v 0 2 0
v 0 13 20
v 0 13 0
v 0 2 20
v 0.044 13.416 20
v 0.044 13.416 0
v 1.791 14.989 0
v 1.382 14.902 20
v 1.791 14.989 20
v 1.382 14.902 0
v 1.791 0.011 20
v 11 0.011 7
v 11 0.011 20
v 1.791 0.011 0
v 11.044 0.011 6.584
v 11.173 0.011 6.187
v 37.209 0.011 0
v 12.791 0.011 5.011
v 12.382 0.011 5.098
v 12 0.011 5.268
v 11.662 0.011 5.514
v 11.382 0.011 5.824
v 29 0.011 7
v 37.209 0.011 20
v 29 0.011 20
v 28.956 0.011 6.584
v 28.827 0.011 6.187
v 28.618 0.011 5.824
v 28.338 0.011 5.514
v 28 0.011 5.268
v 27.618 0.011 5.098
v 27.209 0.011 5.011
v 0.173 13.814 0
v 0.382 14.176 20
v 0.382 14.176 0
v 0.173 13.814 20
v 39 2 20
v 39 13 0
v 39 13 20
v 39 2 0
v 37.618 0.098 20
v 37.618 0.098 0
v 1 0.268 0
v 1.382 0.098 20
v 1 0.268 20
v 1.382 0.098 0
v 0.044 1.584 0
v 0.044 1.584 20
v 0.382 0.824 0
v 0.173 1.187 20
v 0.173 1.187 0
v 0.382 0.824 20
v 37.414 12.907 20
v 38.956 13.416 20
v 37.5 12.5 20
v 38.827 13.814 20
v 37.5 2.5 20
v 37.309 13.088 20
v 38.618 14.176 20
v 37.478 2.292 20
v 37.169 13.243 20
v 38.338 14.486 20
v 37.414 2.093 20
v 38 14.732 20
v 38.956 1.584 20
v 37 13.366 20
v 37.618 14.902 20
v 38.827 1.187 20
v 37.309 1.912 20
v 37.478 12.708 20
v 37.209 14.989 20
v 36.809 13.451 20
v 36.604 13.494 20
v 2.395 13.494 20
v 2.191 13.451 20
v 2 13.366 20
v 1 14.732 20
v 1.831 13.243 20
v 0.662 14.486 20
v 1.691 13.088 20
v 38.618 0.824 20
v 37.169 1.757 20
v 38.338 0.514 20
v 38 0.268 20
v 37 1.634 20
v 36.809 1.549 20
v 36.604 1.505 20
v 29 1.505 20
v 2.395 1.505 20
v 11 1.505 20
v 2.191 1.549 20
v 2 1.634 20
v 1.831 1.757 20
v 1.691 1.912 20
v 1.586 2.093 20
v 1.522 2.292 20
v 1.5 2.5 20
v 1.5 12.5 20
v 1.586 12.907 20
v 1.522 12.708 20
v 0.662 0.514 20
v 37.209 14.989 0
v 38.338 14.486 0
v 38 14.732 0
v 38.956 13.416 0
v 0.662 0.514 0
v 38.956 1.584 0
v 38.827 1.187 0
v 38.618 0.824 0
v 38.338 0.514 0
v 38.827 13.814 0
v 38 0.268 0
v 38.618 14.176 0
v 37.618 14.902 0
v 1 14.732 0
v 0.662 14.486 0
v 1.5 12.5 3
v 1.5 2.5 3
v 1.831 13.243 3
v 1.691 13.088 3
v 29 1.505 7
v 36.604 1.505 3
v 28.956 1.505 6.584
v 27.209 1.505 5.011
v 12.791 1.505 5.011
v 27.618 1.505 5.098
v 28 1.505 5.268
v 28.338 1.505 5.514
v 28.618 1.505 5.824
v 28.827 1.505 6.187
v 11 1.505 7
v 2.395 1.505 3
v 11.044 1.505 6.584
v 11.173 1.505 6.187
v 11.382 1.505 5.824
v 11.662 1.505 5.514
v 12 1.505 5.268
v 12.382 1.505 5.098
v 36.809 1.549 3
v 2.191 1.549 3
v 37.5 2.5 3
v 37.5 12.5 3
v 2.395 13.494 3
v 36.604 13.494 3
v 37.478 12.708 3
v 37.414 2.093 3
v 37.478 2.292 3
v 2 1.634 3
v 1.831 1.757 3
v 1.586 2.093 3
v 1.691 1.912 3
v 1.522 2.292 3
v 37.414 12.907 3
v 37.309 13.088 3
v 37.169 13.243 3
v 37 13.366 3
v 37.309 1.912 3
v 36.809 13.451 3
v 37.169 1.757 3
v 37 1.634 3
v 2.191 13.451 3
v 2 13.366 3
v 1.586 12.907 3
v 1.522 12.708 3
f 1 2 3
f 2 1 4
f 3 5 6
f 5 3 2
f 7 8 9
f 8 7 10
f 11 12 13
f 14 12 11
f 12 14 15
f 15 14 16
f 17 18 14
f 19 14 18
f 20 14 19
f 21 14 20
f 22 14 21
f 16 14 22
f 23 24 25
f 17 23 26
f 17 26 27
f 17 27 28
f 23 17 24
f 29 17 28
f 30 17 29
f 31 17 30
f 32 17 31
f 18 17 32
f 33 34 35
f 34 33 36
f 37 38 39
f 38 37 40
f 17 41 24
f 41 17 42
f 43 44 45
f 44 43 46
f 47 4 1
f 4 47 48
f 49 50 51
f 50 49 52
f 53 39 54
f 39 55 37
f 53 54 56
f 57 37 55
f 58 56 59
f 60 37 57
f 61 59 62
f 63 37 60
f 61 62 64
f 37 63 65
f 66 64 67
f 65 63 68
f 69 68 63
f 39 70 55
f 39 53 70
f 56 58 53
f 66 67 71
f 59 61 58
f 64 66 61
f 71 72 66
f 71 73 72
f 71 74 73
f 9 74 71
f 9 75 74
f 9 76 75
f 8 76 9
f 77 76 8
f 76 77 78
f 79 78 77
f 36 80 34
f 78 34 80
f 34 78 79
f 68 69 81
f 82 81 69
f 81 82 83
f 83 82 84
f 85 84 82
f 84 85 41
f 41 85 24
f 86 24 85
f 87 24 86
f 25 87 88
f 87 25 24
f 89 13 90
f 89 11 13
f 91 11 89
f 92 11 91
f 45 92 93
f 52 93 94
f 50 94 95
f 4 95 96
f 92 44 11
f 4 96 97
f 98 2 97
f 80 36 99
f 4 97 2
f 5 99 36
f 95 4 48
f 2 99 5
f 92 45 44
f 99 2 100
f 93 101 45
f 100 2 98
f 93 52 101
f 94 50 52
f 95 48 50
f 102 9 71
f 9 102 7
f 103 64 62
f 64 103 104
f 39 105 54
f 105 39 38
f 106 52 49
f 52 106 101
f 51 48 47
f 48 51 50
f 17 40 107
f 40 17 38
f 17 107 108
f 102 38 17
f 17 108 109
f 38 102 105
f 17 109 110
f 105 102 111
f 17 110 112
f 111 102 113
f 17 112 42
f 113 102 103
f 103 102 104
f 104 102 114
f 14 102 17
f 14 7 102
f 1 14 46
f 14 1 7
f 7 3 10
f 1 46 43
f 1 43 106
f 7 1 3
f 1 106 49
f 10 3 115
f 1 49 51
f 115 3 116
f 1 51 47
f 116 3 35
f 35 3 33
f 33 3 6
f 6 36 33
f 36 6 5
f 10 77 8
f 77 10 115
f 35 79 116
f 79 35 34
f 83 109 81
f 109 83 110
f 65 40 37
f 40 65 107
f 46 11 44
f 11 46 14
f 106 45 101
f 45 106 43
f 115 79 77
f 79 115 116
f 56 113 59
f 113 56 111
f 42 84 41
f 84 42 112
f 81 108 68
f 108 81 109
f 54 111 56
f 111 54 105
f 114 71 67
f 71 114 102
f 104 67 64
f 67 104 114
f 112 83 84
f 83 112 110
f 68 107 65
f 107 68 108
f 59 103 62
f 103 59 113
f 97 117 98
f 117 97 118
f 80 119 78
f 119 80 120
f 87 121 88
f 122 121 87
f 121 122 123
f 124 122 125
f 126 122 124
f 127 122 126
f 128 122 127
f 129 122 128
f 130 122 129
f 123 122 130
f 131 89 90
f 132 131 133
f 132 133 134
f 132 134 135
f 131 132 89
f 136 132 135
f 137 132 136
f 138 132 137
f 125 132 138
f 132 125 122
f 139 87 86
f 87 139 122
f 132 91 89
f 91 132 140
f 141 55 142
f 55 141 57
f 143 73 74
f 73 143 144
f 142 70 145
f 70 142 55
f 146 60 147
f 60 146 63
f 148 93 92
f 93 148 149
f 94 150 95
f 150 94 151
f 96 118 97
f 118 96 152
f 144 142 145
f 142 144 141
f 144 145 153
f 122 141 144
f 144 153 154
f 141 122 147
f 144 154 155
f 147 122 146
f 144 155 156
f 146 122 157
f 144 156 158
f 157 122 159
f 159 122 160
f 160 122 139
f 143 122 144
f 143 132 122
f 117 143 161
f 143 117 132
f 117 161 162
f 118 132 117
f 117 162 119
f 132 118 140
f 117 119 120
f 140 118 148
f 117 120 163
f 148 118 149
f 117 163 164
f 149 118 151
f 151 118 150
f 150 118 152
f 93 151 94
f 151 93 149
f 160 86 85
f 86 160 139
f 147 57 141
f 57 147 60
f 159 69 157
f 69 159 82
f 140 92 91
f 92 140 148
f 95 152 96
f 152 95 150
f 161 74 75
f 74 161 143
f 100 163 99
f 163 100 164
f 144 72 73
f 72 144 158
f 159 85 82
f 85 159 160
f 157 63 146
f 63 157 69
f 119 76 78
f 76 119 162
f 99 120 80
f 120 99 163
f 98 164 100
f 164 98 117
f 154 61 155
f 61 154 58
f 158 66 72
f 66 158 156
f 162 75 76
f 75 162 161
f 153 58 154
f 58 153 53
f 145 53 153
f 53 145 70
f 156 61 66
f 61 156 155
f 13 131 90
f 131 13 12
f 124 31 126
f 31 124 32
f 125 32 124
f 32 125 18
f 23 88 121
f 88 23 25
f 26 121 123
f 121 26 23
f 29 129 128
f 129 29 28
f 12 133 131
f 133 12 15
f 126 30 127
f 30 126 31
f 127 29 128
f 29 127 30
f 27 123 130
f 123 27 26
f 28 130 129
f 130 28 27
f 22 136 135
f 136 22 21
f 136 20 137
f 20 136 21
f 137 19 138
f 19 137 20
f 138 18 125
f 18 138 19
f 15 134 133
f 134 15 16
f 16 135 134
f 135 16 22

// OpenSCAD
itemsShown="box"; // [both,box,lid]
boxLength=100;
boxWidth=100;
boxHeight=30;
cornerRadius=5;
wallThickness=2;
bottomThickness=2;
lidThickness=2;
lidClearance=1.5;
lidEdgeThickness=0.1;
// Notch in the lid
withNotch=true;//true;//[true:false]

//
difference() {
    //cube ([39, 15, 20]);
    round_cube(39, 15, 20, 2);
    
    translate ([1.5, 1.5, 3]) 
    round_cube(36, 12, 20, 1);
    //cube ([36,12, 17]);
        
    //translate ([11, -5, 5]) 
    //cube ([18, 10, 15]);
    //round_cube(18, 10, 15, 2);
    
    translate ([11, 5, 5]) 
    rotate([90,0,0])
    //cube ([18, 10, 15]);
    round_cube(18, 25, 10, 2);
}        



/* [Global] */
//if (itemsShown=="box") showBox();
//if (itemsShown=="lid") showLid();
//if (itemsShown=="both"){showBox();showLid();}

module showLid(){
	translate ([0, -2*wallThickness, 0]) 
	roundBoxLid(l=boxLength-wallThickness,
				w=boxWidth-2*wallThickness-lidClearance,
				h=lidThickness,
				et=lidEdgeThickness,
				r=cornerRadius-wallThickness,
				notch=withNotch);
}

module showBox(){
	round_box(l=boxLength,
			  w=boxWidth,
			  h=boxHeight,
			  bt=bottomThickness,
			  wt=wallThickness,
			  lt=lidThickness,
			  r=cornerRadius);
}

module round_box(l=40,w=30,h=30,bt=2,wt=2,lt=2,r=5,){
	difference() { 
		round_cube(l=l,w=w,h=h-lt,r=r);
		translate ([wt, wt, bt]) 
		round_cube(l=l-wt*2,w=w-wt*2,h=h,r=r-wt);
	}
	//use two box rims. one to make a slope to support the lid
	roundBoxRim();
	translate ([0, 0, -wt]) roundBoxRim();
}

module roundBoxRim(l=boxLength,
				   w=boxWidth,
				   h=boxHeight,
				   et=lidEdgeThickness,
				   r=cornerRadius,
				   wt=wallThickness,
				   lt=lidThickness){
	difference() { 
		translate ([0, 0, h-lt]) 
		round_cube(l=l,w=w,h=lt,r=r);
		translate ([wt+lt,wt+lt-et*2,h-lt-0.1]) 
		round_cube(l=l*2,w=w-2*(wt+lt)+4*et,h=lt+0.2,r=r-wt+lt);

		//subtract out a lid to make the ledge
		translate ([wt, w-wt, h-lt-0.1])
		roundBoxLid(l=l*2,w=w-2*wt,h=lt+0.1,wt=wt,t=lt,et=0.5,r=r-wt,notch=false);
	}
}

module roundBoxLid(l=40,w=30,h=3,wt=2,t=2,et=0.5,r=5,notch=true){
	translate ([l, 0, 0]) 
	rotate (a = [0, 0, 180]) 
	difference(){
		round_cube(l=l,w=w,h=h,t=t,r=r);

		translate ([-1, 0, et]) rotate (a = [45, 0, 0])  cube (size = [l+2, h*2, h*2]); 
		translate ([-1, w, et]) rotate (a = [45, 0, 0])  cube (size = [l+2, h*2, h*2]); 
		translate ([l, -1, et]) rotate (a = [45, 0, 90]) cube (size = [w+2, h*2, h*2]); 
		if (notch==true){
			translate([2,w/2,h+0.001]) thumbNotch(10/2,72,t);
		}
	}
}

module thumbNotch(
	thumbR=12/2,
	angle=72,
	notchHeight=2){

	size=10*thumbR;

	rotate([0,0,90])
	difference(){
		translate([0,
					(thumbR*sin(angle)-notchHeight)/tan(angle),
					 thumbR*sin(angle)-notchHeight])
		rotate([angle,0,0])
		cylinder(r=thumbR,h=size,$fn=30);

		translate([-size,-size,0])
		cube(size*2);
	}
}

module round_cube(l=40,w=30,h=20,r=5,$fn=30){
	hull(){ 
		translate ([r, r, 0]) cylinder (h = h, r=r);
		translate ([r, w-r, 0]) cylinder (h = h, r=r);
		translate ([l-r,w-r, 0]) cylinder (h = h, r=r);
		translate ([l-r, r, 0]) cylinder (h = h, r=r);
	}
}
